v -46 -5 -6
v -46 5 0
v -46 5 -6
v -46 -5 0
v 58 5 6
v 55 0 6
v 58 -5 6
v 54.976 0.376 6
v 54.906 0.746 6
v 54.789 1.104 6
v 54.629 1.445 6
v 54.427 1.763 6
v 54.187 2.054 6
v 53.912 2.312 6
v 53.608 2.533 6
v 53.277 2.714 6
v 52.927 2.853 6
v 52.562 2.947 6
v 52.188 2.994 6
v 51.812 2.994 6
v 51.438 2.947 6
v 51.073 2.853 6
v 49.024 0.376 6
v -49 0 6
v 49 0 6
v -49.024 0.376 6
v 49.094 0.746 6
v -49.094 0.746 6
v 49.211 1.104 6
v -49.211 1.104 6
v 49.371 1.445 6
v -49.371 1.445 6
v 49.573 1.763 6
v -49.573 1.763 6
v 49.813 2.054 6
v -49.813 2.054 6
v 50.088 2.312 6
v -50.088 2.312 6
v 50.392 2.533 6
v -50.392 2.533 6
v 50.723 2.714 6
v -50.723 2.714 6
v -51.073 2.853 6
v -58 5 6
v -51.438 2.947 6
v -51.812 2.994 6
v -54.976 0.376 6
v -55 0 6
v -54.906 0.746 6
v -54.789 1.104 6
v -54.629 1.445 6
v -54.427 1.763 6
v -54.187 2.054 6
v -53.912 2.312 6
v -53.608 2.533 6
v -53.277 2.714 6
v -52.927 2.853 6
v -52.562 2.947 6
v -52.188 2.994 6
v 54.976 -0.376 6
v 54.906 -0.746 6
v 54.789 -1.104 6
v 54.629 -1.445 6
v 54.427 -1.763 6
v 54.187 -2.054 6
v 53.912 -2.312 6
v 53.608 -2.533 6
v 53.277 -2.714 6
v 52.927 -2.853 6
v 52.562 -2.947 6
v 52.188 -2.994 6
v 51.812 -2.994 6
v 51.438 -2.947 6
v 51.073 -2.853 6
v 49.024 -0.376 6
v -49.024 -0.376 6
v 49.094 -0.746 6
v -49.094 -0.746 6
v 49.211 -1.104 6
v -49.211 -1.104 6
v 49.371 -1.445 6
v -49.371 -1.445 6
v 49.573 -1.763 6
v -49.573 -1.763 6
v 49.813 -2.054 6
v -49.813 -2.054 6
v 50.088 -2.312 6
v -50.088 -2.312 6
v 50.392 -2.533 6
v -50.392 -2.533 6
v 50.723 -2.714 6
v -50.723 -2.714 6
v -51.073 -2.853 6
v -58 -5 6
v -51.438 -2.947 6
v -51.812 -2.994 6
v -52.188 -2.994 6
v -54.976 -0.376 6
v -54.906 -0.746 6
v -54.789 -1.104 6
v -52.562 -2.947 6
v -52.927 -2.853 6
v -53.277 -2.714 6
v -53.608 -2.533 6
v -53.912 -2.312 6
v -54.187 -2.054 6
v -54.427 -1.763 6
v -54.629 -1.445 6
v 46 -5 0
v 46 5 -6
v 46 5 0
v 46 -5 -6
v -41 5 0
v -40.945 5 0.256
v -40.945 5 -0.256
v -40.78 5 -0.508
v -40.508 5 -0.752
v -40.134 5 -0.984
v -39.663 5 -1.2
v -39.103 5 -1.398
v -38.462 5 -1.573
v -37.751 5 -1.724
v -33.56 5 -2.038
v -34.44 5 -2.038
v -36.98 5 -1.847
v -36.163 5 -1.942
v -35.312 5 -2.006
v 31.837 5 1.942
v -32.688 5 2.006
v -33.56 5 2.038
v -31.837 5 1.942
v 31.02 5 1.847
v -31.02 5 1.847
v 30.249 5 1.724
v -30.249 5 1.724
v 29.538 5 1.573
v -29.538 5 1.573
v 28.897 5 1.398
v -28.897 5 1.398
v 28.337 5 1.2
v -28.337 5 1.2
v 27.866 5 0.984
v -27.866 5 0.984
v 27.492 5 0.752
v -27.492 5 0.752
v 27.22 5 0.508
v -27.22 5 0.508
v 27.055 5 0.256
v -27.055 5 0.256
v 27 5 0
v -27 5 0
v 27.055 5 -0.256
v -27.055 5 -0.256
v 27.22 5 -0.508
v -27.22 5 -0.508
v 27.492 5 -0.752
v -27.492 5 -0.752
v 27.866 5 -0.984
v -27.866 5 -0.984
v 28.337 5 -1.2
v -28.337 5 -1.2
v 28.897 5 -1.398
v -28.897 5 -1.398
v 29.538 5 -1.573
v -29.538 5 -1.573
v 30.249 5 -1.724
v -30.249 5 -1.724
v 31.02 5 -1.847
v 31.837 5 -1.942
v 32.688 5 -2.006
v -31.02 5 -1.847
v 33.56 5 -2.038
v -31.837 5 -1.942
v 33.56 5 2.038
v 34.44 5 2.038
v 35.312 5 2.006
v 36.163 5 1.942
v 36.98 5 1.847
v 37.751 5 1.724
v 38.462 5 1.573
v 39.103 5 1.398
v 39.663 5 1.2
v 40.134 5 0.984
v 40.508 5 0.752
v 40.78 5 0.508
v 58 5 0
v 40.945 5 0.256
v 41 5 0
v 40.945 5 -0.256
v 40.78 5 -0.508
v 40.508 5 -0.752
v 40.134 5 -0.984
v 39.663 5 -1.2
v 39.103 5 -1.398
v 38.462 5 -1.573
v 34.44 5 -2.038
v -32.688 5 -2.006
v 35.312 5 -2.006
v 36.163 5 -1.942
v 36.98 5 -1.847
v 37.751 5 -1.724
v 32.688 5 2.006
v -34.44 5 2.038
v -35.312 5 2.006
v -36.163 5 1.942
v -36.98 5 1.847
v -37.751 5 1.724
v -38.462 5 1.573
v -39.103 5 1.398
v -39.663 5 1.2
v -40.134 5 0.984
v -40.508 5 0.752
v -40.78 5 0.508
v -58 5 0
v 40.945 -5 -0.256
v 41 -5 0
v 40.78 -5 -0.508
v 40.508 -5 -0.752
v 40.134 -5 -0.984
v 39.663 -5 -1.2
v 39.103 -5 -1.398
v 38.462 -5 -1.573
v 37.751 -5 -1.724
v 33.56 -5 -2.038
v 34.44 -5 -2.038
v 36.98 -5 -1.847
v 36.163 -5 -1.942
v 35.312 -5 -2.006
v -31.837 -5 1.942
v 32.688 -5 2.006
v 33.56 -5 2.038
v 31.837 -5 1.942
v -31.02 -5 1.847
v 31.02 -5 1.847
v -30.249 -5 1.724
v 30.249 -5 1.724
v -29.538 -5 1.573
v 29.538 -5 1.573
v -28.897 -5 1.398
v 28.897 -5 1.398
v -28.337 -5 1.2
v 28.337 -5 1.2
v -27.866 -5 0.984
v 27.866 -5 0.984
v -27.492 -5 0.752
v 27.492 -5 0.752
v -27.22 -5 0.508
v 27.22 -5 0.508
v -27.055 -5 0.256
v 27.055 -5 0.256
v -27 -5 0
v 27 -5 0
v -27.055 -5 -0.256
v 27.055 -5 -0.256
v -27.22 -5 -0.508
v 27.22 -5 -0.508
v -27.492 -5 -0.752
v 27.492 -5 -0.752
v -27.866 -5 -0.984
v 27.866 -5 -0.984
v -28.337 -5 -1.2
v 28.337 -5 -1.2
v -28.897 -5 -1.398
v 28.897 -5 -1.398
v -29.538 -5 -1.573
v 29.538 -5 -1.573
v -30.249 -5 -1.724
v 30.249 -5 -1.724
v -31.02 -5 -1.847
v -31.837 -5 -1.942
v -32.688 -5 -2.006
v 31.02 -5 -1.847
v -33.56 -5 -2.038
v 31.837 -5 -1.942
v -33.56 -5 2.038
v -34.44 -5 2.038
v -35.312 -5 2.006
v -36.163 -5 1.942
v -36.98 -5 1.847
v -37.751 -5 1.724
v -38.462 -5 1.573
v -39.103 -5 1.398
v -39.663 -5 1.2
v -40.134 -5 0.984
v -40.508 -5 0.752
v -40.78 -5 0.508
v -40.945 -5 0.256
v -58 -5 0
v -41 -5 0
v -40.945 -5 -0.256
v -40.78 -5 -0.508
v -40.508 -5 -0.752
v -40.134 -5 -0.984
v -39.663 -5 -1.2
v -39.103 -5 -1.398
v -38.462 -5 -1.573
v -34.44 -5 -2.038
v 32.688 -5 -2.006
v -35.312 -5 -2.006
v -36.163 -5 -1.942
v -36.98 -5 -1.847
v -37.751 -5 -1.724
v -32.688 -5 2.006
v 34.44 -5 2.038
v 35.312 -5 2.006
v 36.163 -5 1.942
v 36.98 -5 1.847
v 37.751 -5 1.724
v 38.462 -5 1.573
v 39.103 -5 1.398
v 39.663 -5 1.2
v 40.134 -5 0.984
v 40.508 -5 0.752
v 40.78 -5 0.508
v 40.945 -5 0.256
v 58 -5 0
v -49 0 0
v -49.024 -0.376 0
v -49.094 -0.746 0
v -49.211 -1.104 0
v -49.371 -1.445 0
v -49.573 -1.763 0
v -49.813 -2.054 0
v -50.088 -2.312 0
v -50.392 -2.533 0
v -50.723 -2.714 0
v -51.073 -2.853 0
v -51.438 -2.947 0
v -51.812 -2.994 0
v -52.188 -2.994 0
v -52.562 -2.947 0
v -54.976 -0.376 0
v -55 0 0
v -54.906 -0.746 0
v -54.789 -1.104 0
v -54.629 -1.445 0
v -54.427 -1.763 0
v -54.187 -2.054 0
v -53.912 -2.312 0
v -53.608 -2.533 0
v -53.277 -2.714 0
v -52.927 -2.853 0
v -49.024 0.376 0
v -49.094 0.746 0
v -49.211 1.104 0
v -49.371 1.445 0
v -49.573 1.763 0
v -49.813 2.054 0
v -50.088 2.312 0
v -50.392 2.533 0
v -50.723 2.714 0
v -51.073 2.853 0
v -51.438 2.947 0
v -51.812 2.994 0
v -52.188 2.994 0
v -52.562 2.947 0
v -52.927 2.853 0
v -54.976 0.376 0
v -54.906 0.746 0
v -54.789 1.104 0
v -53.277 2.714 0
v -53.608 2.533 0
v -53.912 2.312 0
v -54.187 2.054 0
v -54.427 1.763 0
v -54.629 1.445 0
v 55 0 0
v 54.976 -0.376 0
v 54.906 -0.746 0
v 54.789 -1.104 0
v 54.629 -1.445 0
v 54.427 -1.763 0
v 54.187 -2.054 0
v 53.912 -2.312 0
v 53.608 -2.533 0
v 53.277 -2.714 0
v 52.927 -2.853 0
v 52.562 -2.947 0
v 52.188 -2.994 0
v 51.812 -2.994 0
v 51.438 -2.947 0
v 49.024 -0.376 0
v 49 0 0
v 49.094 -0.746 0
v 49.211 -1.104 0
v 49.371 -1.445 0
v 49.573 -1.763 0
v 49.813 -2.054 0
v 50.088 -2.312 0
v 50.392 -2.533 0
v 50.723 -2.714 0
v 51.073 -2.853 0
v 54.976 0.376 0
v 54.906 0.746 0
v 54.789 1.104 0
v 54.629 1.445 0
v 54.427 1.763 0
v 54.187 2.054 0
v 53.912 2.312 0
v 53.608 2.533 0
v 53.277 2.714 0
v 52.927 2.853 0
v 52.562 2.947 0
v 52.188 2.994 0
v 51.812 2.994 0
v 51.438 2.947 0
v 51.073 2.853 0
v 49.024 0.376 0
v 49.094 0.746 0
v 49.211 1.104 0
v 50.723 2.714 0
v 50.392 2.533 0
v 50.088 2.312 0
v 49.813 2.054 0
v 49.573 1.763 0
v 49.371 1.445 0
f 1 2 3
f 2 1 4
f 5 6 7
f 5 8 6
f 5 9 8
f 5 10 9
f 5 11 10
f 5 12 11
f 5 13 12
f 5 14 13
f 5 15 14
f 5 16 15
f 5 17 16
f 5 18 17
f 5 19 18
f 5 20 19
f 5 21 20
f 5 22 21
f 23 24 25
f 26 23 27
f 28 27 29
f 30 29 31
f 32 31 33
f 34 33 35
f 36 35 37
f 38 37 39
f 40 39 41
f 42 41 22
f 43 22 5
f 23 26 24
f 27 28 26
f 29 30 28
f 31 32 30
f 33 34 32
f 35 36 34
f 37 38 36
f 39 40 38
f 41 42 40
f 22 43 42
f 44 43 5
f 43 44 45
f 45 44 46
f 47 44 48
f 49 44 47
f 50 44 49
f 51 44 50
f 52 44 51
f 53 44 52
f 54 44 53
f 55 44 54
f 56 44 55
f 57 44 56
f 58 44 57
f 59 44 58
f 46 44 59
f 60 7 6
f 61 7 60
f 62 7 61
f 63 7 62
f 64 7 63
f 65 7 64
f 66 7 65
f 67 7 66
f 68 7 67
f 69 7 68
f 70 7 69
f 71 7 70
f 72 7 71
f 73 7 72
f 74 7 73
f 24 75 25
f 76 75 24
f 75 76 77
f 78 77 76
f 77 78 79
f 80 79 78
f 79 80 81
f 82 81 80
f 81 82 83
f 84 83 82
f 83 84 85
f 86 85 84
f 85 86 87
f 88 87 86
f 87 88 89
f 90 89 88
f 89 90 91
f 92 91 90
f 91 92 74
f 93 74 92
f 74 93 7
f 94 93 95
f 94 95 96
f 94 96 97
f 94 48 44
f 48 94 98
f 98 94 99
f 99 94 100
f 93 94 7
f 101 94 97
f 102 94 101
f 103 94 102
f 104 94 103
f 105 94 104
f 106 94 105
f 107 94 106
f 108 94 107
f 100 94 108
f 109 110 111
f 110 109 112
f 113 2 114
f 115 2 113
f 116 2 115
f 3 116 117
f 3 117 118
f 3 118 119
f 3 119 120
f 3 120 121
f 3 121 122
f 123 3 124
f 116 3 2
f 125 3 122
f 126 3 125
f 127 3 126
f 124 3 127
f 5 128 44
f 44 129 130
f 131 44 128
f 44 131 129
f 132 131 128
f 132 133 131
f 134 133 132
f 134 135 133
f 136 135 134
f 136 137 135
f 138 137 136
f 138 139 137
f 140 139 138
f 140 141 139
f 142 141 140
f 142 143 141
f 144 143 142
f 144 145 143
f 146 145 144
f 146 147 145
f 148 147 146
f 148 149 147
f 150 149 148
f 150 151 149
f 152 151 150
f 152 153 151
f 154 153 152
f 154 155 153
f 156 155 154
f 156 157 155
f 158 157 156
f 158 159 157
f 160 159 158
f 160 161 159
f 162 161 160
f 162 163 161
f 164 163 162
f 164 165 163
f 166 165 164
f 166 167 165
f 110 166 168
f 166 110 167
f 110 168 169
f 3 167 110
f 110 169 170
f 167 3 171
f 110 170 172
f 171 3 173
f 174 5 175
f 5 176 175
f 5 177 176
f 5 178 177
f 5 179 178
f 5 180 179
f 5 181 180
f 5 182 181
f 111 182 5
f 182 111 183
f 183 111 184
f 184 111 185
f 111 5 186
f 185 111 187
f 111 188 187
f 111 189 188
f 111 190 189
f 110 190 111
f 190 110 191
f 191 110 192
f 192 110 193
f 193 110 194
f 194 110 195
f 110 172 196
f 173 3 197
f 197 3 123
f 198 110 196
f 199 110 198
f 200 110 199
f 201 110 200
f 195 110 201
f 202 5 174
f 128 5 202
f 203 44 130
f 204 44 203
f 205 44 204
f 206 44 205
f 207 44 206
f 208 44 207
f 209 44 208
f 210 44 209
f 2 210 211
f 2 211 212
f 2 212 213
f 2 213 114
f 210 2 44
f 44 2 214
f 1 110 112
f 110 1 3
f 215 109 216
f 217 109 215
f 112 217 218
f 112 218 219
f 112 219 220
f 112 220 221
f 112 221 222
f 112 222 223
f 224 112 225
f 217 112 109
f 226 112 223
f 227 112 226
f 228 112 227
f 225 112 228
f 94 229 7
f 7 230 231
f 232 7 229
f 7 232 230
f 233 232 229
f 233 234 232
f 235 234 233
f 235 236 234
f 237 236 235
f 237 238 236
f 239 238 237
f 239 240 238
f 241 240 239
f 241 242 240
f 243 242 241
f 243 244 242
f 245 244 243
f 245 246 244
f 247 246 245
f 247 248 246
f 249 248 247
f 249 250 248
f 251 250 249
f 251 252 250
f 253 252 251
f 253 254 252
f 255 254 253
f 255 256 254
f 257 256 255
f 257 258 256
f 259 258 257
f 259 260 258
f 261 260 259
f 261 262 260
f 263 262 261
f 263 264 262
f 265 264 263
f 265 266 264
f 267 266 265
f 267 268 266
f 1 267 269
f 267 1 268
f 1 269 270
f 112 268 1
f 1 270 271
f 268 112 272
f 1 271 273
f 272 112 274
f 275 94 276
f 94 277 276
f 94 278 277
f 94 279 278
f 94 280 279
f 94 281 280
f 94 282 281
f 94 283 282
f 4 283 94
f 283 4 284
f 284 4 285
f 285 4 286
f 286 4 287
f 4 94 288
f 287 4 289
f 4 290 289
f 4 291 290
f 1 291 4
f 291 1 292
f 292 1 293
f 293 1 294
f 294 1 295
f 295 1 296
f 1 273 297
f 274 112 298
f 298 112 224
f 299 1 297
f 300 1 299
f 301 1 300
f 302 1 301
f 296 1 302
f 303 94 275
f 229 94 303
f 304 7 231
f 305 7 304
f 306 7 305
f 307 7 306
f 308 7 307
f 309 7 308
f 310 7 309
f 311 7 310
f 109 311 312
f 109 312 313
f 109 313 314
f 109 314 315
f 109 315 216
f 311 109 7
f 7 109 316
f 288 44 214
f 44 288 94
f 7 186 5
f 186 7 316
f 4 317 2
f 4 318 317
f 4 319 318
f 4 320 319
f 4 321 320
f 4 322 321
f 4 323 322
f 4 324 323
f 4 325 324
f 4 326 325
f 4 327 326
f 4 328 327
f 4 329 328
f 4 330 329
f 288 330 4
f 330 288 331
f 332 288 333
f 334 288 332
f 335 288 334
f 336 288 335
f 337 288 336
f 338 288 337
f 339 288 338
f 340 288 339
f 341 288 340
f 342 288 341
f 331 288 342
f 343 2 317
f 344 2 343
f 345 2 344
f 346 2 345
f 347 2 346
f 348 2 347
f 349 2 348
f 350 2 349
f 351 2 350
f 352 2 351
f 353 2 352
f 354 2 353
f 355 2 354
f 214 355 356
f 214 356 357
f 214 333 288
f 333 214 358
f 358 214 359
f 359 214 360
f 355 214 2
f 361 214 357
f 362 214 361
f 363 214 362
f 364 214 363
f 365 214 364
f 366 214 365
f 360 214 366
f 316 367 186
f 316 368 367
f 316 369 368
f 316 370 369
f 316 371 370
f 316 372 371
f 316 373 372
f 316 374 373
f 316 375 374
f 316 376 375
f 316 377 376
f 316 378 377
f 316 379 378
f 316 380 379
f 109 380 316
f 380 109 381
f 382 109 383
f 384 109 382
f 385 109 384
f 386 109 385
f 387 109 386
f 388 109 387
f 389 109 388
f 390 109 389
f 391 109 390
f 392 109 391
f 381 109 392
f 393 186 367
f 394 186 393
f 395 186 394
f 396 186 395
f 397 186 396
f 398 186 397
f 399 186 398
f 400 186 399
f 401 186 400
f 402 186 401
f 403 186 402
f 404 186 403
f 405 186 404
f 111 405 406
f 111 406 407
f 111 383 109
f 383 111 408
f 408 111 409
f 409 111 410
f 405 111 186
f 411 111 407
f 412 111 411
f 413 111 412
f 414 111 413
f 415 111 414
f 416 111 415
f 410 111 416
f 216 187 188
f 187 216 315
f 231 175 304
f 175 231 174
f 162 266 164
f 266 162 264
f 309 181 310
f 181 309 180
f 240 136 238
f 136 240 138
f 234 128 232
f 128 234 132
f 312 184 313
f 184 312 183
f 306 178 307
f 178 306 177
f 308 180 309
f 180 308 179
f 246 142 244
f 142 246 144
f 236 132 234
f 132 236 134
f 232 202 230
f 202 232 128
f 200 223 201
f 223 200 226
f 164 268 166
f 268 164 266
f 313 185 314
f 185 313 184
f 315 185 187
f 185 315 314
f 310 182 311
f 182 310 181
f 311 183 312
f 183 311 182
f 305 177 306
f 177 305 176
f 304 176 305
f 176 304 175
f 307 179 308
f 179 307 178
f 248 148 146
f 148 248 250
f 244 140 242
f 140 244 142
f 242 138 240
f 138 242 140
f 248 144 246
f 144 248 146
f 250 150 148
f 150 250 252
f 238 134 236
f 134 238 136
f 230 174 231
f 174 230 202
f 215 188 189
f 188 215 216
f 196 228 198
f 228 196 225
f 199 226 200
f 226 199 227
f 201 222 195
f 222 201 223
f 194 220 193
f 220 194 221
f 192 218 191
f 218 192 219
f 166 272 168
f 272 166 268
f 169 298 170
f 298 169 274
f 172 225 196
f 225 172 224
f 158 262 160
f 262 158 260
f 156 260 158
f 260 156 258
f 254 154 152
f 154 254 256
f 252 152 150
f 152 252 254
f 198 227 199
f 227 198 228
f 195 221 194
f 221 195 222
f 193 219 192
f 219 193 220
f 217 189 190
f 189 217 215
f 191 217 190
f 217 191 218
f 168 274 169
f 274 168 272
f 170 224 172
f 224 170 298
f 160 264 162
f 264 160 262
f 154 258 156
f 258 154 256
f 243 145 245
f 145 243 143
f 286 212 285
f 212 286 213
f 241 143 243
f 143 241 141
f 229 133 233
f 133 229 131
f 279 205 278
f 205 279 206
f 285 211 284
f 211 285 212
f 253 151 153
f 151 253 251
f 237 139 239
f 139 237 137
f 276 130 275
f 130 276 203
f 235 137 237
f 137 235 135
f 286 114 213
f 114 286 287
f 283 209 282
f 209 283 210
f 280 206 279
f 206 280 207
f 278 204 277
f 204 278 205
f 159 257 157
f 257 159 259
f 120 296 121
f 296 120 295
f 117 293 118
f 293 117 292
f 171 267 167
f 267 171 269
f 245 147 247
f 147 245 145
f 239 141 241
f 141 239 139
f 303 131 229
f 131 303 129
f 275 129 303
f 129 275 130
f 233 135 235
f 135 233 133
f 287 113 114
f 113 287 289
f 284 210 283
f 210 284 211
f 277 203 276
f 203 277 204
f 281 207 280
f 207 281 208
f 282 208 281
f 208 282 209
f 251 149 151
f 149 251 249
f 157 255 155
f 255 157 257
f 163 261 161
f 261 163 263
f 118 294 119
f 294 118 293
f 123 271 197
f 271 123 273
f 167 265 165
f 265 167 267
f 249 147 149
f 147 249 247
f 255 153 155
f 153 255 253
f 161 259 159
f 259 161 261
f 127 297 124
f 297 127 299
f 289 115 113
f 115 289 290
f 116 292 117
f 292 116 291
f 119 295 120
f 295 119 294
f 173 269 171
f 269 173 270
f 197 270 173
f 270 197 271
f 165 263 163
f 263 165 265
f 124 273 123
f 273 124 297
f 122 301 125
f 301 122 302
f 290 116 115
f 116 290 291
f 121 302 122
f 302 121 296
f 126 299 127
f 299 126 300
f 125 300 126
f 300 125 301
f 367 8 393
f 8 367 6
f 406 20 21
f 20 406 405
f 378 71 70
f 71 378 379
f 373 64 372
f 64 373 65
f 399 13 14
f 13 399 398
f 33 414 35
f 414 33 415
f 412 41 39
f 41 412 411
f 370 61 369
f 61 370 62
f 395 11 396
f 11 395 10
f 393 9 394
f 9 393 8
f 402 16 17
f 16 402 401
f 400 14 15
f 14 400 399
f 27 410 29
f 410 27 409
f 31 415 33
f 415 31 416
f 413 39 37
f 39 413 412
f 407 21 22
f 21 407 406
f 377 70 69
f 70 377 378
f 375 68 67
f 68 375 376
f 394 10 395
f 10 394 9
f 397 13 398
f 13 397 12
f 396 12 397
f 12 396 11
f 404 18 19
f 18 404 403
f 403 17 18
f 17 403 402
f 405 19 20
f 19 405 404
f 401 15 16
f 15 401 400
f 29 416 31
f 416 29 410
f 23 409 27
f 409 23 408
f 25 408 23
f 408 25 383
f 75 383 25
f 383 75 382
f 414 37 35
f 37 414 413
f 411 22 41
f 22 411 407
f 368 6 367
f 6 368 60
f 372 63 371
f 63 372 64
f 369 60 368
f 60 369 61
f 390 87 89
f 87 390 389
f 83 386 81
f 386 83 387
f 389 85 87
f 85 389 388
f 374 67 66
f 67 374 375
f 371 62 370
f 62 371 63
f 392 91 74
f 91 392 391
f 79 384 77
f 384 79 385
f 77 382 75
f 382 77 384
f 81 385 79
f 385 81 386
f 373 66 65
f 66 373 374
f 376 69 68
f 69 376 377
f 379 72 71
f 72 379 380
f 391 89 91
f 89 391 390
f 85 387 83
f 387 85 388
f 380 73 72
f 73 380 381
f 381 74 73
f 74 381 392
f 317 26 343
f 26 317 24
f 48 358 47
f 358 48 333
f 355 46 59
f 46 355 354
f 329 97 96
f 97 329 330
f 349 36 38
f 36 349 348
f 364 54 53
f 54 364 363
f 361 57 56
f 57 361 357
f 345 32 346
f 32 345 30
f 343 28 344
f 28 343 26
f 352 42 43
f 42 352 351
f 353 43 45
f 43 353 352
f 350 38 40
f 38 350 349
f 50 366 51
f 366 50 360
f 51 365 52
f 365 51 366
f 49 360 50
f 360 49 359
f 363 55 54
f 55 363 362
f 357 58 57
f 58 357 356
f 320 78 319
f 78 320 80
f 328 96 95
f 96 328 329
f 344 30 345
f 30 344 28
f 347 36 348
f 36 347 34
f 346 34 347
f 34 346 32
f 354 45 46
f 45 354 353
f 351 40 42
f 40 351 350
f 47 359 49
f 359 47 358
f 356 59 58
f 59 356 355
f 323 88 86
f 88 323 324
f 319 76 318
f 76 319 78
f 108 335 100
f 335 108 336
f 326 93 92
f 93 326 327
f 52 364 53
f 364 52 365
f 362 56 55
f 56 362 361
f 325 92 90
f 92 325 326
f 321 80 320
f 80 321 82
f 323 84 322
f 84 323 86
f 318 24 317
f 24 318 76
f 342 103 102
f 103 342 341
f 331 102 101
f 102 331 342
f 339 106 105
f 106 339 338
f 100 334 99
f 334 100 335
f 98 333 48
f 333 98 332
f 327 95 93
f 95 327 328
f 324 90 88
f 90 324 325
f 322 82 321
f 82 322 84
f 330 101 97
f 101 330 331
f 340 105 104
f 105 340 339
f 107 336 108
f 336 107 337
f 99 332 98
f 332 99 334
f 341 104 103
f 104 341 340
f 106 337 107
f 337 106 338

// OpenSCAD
$fn=50;
hole_centers=68;
hole_diameter=3.5;
mount_board_thickness=18;
bracket_to_hole_centers=30-mount_board_thickness;
walls=6;
hole_depth=30;
mount_hole_diameter=6;
cube_hole_size=[20,hole_depth,hole_diameter+1];

block_size=[hole_centers+walls*4,10,bracket_to_hole_centers];
mount_block_size=[block_size.x+walls*2+mount_hole_diameter*2,block_size.y,6];
 
difference()
{
    union()
    {
        translate([-block_size.x/2,-block_size.y/2,-walls])
            cube(size=block_size);
        translate([-mount_block_size.x/2,-mount_block_size.y/2,0])
            cube(size=mount_block_size);
    }
    
   rotate([90,0,0]) 
    {
        translate([hole_centers/2,0,-hole_depth/2])
            scale([4,7/6,1])
                cylinder(d=hole_diameter,h=hole_depth);
        translate([-hole_centers/2,0,-hole_depth/2])
            scale([4,7/6,1]) 
                cylinder(d=hole_diameter,h=hole_depth);
 }
    
    /* translate([hole_centers/2-cube_hole_size.x/2-4,-hole_depth/2,-cube_hole_size.z/2])
        cube(size=cube_hole_size);
        translate([-hole_centers/2-cube_hole_size.x/2+4,-hole_depth/2,-cube_hole_size.z/2])
        cube(size=cube_hole_size); */
    
   translate([-block_size.x/2-walls,0,-hole_depth/2])
    {
        translate([block_size.x+walls*2,0,0])
            cylinder(d=mount_hole_diameter,h=hole_depth);
        cylinder(d=mount_hole_diameter,h=hole_depth);
    }
   
    
    /*translate([-hole_centers/2-cube_hole_size.x/2+4,hole_depth/2,0])
        rotate([90,0,0])
        {
            translate([hole_centers,0,0])
                scale([2,1,1]) cylinder(d=hole_diameter,h=hole_depth);
            scale([2,1,1]) cylinder(d=hole_diameter,h=hole_depth);
        } */ 
   
    
    /*translate([-block_size.x/2+walls,hole_depth/2,0])
        rotate([90,0,0])
        {
            translate([hole_centers,0,0])
                cylinder(d=hole_diameter,h=hole_depth);
            cylinder(d=hole_diameter,h=hole_depth);
        }*/
}
